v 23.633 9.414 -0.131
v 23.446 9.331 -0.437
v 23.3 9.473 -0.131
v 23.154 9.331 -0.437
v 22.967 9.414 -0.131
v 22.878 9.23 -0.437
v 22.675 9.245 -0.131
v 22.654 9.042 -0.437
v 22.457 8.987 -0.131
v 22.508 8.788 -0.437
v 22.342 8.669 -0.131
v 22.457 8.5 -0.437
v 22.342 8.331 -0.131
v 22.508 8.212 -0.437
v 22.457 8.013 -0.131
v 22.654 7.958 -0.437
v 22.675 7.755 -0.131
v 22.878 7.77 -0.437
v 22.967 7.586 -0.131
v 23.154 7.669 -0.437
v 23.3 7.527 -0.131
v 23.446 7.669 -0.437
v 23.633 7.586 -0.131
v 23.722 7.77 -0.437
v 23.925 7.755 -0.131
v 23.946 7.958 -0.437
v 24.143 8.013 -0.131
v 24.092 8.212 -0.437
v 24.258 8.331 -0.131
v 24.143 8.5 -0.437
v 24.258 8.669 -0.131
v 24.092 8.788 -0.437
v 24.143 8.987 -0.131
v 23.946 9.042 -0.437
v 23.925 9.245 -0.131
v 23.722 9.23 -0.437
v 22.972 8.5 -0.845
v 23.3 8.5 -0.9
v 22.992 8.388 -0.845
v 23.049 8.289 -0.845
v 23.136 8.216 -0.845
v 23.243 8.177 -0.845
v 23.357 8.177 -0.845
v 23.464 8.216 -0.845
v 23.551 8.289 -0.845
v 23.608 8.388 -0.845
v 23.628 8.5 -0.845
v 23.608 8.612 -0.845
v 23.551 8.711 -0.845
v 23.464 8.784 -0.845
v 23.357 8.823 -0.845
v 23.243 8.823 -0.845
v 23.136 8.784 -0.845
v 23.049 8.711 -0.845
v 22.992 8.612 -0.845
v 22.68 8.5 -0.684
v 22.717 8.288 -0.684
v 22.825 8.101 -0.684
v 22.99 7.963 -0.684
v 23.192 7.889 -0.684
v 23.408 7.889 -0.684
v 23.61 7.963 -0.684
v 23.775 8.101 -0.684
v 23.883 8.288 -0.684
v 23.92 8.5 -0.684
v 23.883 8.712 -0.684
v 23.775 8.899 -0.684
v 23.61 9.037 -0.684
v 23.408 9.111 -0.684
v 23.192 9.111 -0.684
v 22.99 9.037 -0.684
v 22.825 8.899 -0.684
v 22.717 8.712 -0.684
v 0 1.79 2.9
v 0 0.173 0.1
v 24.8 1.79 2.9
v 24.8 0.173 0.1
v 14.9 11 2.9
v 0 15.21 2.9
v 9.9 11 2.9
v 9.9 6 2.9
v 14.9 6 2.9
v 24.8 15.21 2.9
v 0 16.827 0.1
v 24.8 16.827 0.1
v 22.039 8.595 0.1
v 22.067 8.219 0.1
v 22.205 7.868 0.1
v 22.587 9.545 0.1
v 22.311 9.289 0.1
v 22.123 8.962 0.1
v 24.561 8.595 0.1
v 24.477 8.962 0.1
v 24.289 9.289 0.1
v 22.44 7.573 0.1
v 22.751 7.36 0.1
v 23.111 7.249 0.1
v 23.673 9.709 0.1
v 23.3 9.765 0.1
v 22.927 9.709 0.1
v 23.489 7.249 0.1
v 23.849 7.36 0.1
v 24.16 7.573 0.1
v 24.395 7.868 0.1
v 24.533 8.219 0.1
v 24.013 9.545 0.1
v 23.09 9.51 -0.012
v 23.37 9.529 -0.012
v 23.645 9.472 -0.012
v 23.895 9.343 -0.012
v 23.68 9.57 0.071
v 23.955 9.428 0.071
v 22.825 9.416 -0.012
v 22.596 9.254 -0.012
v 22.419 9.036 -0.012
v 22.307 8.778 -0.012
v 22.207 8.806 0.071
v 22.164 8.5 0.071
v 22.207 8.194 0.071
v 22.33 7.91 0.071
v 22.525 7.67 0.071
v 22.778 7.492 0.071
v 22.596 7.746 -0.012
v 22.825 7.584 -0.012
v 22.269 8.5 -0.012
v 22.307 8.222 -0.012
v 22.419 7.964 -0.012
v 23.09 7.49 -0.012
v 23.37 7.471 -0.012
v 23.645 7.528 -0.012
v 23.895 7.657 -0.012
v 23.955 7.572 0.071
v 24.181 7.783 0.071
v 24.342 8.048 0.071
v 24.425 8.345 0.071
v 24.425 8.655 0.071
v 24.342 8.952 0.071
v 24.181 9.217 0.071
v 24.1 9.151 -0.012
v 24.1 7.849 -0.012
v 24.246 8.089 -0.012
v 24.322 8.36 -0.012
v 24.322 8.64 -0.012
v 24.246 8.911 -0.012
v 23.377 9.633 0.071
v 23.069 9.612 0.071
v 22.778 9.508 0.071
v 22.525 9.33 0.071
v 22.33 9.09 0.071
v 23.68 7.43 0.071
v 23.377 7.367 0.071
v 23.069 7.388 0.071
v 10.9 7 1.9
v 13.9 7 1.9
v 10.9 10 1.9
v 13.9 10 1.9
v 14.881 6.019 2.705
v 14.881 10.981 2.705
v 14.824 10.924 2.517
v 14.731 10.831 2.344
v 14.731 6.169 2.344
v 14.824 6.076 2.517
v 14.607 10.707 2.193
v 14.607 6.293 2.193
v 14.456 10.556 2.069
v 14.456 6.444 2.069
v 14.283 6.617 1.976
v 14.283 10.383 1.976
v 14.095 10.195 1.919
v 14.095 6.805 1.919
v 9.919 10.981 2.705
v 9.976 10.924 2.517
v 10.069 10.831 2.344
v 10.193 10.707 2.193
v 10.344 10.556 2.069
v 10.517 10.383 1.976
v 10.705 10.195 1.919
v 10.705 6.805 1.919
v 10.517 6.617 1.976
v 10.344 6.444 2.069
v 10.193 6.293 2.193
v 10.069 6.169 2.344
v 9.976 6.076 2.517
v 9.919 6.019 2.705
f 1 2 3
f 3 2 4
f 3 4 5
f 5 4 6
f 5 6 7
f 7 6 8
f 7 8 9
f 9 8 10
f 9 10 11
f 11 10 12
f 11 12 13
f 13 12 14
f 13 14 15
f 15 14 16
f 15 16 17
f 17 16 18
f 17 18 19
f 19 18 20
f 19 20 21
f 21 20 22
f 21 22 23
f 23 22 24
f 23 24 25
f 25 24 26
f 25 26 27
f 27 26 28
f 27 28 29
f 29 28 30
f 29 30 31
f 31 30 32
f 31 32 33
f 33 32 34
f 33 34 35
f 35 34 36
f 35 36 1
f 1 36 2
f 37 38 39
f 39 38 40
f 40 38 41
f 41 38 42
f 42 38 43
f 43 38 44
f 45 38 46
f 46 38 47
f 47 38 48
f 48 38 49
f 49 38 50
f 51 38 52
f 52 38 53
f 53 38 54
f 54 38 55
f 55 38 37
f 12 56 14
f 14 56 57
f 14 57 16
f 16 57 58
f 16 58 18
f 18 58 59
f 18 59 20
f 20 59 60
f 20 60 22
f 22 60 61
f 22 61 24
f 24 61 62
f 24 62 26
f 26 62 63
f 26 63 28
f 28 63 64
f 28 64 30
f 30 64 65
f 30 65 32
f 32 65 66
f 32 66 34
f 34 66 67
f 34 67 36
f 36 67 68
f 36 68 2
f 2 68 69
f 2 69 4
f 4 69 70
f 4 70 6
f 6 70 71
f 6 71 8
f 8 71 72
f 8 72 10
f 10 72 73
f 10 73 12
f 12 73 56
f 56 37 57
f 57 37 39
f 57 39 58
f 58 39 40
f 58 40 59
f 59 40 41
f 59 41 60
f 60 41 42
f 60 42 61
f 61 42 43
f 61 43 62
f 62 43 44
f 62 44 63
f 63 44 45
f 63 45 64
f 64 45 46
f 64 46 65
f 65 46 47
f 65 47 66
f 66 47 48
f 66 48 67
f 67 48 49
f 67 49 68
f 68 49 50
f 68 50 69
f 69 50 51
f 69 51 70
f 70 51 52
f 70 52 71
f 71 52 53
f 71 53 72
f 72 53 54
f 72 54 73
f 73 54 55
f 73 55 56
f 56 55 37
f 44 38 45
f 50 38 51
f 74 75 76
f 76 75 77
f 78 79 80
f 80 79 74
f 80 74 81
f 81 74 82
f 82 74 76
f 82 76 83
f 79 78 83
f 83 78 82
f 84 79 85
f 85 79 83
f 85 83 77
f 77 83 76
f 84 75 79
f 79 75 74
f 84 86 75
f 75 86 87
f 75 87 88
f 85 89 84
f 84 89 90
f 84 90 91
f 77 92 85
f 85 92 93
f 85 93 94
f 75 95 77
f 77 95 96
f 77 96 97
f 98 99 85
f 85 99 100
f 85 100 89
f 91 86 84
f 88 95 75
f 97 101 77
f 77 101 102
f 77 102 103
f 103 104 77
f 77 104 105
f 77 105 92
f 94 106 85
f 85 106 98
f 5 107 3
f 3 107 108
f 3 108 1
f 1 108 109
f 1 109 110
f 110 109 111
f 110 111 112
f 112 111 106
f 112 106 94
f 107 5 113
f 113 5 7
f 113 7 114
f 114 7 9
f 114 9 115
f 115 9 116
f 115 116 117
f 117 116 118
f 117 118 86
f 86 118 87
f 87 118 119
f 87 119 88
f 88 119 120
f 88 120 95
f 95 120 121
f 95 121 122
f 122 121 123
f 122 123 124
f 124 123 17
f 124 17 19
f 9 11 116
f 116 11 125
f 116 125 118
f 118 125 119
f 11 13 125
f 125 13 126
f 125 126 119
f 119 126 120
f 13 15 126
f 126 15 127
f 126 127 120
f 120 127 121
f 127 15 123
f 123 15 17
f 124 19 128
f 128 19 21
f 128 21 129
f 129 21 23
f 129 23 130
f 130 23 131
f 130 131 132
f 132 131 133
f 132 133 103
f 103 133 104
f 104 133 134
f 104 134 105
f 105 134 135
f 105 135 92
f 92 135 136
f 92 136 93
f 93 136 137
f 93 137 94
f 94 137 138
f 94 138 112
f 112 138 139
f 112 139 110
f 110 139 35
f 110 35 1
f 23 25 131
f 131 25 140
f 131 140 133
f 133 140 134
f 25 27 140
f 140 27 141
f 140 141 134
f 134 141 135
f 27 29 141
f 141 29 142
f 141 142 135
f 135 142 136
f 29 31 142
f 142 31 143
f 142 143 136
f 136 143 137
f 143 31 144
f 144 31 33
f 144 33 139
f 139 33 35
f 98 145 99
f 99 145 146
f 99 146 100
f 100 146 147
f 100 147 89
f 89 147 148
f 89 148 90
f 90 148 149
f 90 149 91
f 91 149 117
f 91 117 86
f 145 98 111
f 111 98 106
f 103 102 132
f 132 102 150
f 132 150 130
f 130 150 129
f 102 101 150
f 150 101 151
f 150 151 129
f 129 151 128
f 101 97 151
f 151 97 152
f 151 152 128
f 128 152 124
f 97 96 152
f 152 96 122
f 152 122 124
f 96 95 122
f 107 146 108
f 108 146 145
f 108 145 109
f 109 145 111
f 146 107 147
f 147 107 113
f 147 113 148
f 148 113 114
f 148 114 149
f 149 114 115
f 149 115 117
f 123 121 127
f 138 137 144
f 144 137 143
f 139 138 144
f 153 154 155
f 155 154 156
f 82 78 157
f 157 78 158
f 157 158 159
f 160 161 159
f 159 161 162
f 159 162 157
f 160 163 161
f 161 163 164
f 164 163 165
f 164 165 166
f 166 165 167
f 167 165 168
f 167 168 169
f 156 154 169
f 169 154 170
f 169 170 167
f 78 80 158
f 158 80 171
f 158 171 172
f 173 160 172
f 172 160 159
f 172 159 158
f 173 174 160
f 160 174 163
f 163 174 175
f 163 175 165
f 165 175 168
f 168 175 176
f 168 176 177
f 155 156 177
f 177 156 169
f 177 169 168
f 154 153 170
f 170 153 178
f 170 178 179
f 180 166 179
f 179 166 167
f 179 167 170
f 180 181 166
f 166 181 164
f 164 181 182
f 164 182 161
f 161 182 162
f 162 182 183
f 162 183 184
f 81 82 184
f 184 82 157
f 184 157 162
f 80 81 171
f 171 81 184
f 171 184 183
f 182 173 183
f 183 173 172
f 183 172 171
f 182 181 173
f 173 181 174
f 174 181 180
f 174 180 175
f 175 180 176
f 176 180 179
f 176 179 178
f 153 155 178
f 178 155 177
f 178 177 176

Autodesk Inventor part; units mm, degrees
ref_plane "YZ Plane" through (0, 0, 0) normal (1, 0, 0) x (0, 1, 0)
sketch "Sketch1" plane through (0, 0, 0) normal (1, 0, 0) x (0, 1, 0)
  line L0 (0, 0) -> (1.7321, 3) construction
  line L1 (1.7321, 3) -> (15.2679, 3) construction
  line L2 (15.2679, 3) -> (17, 0) construction
  line L3 (17, 0) -> (0, 0) construction
  line L4 (15.2679, 3) -> (15.2679, 0) construction
  line L5 (0.1732, 0.1) -> (1.7898, 2.9)
  line L6 (1.7898, 2.9) -> (15.2102, 2.9)
  line L7 (15.2102, 2.9) -> (16.8268, 0.1)
  line L8 (16.8268, 0.1) -> (0.1732, 0.1)
  line L9 (16.0185, 1.5) -> (16.1051, 1.55) construction
  dimension "d0" = 60
  dimension "d1" = 17
  dimension "d2" = 3
  dimension "d11" = 0.1
extrude "Extrusion1" add sketch "Sketch1" along normal blind 24.8
sketch "Sketch3" plane through (0, 1.7898, 2.9) normal (0, 0, 1) x (1, 0, 0)
  line L0 (0, 13.4204) -> (0, 0) construction
  line L1 (0, 13.4204) -> (24.8, 13.4204) construction
  line L2 (0, 0) -> (3, 0) construction
  line L3 (3, 0) -> (3, 13.4204) construction
  line L4 (3, 13.4204) -> (0, 13.4204) construction
  line L5 (0, 13.4204) -> (0, 0) construction
  circle A0 centre (1.5, 6.7102) radius 1.0891
  line L6 (0, 6.7102) -> (3, 6.7102) construction
  point P0 (0, -1.7898)
  point P1 (1.5, 13.4204)
  dimension "d12" = 3
ref_plane "Work Plane1" through (1.5, 8.5, 2.9) normal (1, 0, 0) x (0, 1, 0)
sketch "Sketch5" plane through (0, 0.1732, 0.1) normal (0, 0, -1) x (-1, 0, 0)
  line L0 (0, 0) -> (0, 16.6536) construction
  line L1 (0, 16.6536) -> (-24.8, 16.6536) construction
  line L2 (-24.8, 0) -> (-24.8, 16.6536) construction
  line L3 (0, 0) -> (-24.8, 0) construction
  line L4 (-21.8, 0) -> (-21.8, 16.6536) construction
  line L5 (-24.8, 8.3268) -> (-21.8, 8.3268) construction
  point P0 (0, -0.1732)
  point P1 (-23.3, 8.3268)
  dimension "d16" = 3
ref_plane "Work Plane2" through (23.3, 8.5, 0.1) normal (-1, 0, 0) x (0, -1, 0)
sketch "Sketch6" plane through (23.3, 8.5, 0.1) normal (-1, 0, 0) x (0, -1, 0)
  line L0 (8.3268, 0) -> (-8.3268, 0) projected
  line L1 (0, 0) -> (0, -1)
  line L2 (0, 0) -> (-1, 0)
  arc A0 (-1, 0) -> (0, -1) centre (0, 0) ccw
  point P0 (8.5, -0.1)
  dimension "d17" = 1
revolve "Revolution2" add sketch "Sketch6" angle 360 about axis through (23.3, 8.5, 0.1) along (0, 0, -1)
fillet "Fillet4" radius 0.3 1 edges at (23.3, 7.5, 0.1)
sketch "Sketch7" plane through (0, 1.7898, 2.9) normal (0, 0, 1) x (1, 0, 0)
  line L0 (9.9, 4.2102) -> (14.9, 4.2102)
  line L1 (14.9, 4.2102) -> (14.9, 9.2102)
  line L2 (14.9, 9.2102) -> (9.9, 9.2102)
  line L3 (9.9, 9.2102) -> (9.9, 4.2102)
  line L4 (0, 13.4204) -> (0, 0) projected
  line L5 (0, 13.4204) -> (24.8, 13.4204) projected
  point P0 (0, -1.7898)
  point P1 (9.9, 6.7102)
  point P2 (0, 6.7102)
  point P3 (12.4, 9.2102)
  point P4 (12.4, 13.4204)
  dimension "d20" = 5
  dimension "d21" = 5
extrude "Extrusion3" cut sketch "Sketch7" against normal blind 1
fillet "Fillet5" radius 1 4 edges at (9.9, 8.5, 1.9) (12.4, 6, 1.9) (14.9, 8.5, 1.9) (12.4, 11, 1.9)
properties part number "door"
